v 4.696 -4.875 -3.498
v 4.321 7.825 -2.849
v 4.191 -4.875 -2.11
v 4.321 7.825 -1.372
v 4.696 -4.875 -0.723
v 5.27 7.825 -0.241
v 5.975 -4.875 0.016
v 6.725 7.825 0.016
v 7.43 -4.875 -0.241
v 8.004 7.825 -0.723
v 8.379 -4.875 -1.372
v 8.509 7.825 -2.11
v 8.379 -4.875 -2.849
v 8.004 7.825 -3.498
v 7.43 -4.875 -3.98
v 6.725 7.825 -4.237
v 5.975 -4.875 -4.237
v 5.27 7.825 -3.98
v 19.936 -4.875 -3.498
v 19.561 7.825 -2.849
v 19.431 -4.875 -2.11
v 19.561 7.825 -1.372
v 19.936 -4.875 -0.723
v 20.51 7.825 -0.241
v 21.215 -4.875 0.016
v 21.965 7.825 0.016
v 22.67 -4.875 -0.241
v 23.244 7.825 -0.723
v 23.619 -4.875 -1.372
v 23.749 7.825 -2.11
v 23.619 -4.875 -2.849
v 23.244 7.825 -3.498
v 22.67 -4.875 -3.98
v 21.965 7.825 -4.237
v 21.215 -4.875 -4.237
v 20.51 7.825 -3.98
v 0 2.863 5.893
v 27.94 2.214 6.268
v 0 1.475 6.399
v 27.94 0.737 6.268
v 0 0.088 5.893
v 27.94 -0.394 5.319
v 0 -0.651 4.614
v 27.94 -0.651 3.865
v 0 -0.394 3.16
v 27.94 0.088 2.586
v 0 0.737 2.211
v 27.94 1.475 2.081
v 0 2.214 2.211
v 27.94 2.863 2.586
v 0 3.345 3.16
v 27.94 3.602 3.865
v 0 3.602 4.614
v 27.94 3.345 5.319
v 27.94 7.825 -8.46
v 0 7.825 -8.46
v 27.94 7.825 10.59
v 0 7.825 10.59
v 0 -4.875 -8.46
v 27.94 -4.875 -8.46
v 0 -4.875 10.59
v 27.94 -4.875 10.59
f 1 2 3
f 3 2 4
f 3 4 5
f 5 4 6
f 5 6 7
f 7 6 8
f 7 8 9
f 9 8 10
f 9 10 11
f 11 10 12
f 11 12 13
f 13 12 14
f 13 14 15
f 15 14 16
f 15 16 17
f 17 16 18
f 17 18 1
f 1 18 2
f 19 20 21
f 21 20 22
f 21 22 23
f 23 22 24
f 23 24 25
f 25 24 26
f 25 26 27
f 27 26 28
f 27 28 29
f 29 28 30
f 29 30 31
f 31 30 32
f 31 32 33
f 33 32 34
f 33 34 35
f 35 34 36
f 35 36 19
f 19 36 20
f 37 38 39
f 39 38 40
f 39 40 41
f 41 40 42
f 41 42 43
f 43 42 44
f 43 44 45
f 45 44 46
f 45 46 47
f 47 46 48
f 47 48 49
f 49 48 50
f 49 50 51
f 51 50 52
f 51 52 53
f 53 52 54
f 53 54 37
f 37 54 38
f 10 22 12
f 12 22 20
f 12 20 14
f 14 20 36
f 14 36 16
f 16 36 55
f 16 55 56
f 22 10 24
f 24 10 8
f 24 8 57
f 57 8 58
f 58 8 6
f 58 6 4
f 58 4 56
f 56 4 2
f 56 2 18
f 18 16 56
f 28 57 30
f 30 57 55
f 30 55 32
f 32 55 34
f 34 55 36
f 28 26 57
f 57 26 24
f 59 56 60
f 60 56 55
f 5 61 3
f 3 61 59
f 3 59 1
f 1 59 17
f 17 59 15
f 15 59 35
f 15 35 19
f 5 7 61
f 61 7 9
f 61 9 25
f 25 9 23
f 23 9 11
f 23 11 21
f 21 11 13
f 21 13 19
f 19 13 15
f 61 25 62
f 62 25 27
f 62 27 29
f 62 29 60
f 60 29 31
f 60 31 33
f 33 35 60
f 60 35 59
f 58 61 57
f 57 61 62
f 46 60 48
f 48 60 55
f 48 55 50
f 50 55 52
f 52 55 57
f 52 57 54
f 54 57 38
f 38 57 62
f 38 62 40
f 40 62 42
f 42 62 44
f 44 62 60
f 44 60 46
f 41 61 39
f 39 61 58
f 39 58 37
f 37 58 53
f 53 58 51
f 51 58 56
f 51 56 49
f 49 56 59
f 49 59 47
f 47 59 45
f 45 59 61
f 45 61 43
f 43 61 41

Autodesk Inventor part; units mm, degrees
ref_plane "YZ Plane" through (0, 0, 0) normal (1, 0, 0) x (0, 1, 0)
ref_plane "XZ Plane" through (0, 0, 0) normal (0, 1, 0) x (-1, 0, 0)
ref_plane "XY Plane" through (0, 0, 0) normal (0, 0, 1) x (1, 0, 0)
sketch "Sketch1" plane through (0, 0, 0) normal (1, 0, 0) x (0, 1, 0)
  line L0 (7.8254, 10.5896) -> (-4.8746, 10.5896)
  line L1 (-4.8746, 10.5896) -> (-4.8746, -8.4604)
  line L2 (-4.8746, -8.4604) -> (7.8254, -8.4604)
  line L3 (7.8254, -8.4604) -> (7.8254, 10.5896)
  point P0 (0, 0)
  dimension "d0" = 19.05
  dimension "d1" = 12.7
extrude "Extrusion1" add sketch "Sketch1" along normal blind 27.94
sketch "Sketch2" plane through (27.94, 0, 0) normal (1, 0, 0) x (0, 0, -1)
  line L0 (-10.5896, 7.8254) -> (-10.5896, -4.8746) projected
  line L1 (8.4604, 7.8254) -> (-10.5896, 7.8254) projected
  point P0 (0, 0)
  point P1 (-4.2396, 1.4754)
  dimension "d4" = 6.35
  dimension "d5" = 6.35
hole "Hole1" at (27.94, 1.4754, 4.2396) direction (-1, 0, 0) diameter 4.318 end through all
sketch "Sketch3" plane through (0, 7.8254, 10.5896) normal (0, 1, 0) x (1, 0, 0)
  line L0 (27.94, 19.05) -> (27.94, 0) projected
  line L1 (0, 19.05) -> (0, 0) projected
  line L2 (0, 19.05) -> (27.94, 19.05) projected
  point P0 (0, 10.5896)
  point P1 (6.35, 12.7)
  point P2 (21.59, 12.7)
  dimension "d13" = 6.35
  dimension "d14" = 6.35
  dimension "d15" = 6.35
  dimension "d16" = 0
hole "Hole2" at (6.35, 7.8254, -2.1104) at (21.59, 7.8254, -2.1104) direction (0, -1, 0) diameter 4.318 end through all
properties part number "MotorSpacerBlock"
